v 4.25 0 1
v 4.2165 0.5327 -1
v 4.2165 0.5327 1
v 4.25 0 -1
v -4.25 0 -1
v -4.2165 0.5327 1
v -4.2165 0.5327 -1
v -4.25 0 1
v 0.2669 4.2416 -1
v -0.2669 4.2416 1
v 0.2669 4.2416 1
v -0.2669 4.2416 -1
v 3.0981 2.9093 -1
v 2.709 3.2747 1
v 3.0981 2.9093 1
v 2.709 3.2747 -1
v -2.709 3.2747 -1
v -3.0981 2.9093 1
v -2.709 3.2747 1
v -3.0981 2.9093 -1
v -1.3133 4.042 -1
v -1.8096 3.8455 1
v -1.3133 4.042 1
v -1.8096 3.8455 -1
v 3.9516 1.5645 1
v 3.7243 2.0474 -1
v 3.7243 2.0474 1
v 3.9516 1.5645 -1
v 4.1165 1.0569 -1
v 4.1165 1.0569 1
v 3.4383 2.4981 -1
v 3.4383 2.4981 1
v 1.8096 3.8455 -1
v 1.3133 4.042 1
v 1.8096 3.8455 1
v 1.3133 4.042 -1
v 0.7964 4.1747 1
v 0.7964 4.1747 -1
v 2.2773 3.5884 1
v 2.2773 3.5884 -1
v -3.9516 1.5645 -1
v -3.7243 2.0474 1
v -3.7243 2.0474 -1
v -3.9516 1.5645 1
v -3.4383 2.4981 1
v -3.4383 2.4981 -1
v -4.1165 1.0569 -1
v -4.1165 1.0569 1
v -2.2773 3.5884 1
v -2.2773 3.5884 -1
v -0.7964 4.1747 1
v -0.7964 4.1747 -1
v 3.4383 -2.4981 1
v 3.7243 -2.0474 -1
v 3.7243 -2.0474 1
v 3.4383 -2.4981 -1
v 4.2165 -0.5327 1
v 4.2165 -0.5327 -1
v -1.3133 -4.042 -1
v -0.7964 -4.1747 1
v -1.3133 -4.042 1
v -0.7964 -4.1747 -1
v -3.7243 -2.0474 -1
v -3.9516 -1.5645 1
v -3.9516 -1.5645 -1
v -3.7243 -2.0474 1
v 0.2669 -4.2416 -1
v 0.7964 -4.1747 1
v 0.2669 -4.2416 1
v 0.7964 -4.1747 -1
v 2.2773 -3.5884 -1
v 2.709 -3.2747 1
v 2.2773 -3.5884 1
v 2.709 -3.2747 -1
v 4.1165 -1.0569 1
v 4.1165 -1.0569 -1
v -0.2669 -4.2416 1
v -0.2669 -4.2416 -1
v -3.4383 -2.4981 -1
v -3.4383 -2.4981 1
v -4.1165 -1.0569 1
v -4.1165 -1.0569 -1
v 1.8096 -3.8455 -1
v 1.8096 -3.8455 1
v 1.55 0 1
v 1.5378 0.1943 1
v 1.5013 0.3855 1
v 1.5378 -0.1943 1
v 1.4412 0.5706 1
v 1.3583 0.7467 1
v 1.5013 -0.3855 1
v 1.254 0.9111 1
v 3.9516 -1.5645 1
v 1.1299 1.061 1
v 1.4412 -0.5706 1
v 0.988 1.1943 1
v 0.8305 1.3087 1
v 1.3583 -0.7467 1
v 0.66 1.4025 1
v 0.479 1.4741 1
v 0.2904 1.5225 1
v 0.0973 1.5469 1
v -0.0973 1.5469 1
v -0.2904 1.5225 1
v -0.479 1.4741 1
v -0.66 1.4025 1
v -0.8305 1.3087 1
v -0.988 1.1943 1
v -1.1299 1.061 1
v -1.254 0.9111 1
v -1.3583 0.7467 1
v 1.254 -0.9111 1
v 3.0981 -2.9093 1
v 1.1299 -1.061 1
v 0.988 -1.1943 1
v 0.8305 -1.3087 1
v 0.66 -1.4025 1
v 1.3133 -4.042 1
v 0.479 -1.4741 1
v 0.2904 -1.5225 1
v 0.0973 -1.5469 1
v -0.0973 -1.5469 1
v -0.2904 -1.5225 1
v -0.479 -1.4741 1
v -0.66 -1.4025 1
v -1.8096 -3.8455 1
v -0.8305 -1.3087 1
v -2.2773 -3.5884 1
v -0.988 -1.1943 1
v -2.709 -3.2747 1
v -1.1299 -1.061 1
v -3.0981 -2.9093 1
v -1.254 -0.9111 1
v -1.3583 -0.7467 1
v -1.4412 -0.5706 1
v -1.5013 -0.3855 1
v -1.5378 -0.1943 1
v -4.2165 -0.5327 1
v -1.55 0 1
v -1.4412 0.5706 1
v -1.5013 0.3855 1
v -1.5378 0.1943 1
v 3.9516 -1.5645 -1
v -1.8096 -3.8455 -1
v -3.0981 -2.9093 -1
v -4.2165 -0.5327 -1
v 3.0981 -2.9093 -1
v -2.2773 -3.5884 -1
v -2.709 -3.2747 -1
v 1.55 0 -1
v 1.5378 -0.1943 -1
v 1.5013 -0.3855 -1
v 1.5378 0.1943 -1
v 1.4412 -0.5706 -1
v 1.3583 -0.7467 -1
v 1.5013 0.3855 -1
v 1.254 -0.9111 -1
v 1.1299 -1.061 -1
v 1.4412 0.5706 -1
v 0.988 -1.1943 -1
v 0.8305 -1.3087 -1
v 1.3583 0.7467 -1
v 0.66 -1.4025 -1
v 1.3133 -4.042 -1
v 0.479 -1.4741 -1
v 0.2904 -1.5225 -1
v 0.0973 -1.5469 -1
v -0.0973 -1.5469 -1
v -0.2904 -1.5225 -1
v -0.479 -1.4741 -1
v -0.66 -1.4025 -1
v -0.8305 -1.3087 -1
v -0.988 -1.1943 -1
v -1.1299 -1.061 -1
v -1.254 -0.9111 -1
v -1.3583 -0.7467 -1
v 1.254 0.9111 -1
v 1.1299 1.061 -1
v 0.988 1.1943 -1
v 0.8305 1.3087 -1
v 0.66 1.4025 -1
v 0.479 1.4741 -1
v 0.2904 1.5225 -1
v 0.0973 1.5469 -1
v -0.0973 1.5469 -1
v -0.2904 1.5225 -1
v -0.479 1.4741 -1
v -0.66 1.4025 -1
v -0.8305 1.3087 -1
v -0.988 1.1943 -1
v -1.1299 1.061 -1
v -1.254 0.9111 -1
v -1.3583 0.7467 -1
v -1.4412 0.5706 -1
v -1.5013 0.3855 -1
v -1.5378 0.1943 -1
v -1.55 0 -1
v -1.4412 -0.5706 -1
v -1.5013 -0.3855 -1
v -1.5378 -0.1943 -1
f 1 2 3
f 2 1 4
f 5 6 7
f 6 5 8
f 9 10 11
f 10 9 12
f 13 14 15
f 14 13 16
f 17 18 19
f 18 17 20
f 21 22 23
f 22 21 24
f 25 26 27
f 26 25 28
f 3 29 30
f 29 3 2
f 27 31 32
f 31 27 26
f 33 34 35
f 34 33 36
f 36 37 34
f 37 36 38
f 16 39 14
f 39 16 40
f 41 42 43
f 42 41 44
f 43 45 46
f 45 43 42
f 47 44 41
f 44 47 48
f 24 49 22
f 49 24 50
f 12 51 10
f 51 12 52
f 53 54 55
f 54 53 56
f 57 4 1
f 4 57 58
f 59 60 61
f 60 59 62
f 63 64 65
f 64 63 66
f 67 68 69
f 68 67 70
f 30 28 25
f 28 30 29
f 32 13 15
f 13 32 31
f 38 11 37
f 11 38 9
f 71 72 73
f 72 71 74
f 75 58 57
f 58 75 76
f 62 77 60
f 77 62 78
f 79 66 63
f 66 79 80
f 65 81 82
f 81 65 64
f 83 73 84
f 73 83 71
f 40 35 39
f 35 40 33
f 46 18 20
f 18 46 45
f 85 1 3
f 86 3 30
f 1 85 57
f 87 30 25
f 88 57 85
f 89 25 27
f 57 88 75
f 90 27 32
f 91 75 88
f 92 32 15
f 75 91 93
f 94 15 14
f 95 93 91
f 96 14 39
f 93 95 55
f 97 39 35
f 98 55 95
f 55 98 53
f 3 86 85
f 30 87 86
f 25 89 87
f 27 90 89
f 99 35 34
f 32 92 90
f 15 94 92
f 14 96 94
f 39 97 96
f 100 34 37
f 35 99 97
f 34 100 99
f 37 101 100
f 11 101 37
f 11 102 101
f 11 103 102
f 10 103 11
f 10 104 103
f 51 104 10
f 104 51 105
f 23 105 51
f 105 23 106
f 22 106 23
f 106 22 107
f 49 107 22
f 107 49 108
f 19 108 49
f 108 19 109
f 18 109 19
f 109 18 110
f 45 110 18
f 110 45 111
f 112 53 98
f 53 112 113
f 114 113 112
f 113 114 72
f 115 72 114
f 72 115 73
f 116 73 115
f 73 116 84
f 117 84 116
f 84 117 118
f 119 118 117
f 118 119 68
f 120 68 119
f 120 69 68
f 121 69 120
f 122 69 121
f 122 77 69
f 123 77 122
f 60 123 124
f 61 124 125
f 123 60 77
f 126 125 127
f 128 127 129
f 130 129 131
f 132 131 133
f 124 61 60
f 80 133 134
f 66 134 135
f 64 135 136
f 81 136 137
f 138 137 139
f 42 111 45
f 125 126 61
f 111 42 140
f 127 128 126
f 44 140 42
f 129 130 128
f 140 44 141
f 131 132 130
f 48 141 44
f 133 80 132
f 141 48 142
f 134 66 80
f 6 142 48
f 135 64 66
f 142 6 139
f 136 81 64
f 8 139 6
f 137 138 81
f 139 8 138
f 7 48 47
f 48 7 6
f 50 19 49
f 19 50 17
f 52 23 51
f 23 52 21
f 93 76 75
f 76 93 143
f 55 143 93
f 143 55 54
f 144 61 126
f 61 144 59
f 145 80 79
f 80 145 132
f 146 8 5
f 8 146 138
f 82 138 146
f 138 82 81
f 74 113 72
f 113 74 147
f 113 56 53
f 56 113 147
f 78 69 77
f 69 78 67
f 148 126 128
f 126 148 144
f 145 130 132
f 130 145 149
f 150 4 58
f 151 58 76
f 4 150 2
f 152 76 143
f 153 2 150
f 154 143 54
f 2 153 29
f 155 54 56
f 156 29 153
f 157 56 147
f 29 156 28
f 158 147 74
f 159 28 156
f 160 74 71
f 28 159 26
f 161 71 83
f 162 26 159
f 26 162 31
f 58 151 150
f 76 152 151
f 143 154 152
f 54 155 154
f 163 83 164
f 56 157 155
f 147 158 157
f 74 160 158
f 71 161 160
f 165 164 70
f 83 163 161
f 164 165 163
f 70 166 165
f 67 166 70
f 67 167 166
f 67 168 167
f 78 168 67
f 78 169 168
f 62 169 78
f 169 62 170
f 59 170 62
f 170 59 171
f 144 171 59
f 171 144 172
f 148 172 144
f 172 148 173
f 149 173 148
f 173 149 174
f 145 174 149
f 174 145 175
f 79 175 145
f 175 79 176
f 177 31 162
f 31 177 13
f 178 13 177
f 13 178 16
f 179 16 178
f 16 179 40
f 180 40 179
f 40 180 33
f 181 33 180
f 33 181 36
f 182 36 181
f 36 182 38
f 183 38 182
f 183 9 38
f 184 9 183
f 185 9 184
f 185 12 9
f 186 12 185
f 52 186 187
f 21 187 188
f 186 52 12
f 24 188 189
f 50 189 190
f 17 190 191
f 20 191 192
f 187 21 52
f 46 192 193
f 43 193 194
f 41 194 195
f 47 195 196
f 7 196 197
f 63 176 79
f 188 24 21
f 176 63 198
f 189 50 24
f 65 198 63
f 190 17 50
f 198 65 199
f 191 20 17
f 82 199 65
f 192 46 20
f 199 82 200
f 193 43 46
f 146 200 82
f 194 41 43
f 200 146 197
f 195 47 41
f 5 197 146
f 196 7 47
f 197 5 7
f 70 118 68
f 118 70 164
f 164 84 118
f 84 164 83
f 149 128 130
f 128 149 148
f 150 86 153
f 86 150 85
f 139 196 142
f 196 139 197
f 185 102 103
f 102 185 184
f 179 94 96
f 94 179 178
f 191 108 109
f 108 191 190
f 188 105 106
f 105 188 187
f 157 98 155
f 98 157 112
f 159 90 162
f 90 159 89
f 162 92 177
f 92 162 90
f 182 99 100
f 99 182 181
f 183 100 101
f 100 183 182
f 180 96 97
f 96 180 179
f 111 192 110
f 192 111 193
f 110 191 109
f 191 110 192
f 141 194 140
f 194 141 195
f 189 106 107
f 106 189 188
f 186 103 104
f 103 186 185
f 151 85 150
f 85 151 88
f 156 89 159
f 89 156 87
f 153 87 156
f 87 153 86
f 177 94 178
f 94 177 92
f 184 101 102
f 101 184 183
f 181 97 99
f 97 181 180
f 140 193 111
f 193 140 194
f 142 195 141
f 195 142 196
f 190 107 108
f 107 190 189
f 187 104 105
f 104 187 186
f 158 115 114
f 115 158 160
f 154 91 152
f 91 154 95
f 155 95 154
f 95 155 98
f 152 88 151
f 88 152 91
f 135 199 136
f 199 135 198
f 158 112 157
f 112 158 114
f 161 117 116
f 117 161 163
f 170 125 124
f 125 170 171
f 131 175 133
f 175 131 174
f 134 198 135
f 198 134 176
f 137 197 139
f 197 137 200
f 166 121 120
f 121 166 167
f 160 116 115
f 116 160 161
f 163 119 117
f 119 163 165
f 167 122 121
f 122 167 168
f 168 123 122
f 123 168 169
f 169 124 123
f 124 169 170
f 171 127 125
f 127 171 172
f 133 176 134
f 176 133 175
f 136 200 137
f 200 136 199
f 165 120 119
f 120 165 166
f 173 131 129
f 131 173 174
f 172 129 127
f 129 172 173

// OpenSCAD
$fn = 50;


difference() {
	union() {
		translate(v = [0, 0, -1.0000000000]) {
			cylinder(h = 2, r = 4.2500000000);
		}
	}
	union() {
		translate(v = [0, 0, -100.0000000000]) {
			cylinder(h = 200, r = 1.5500000000);
		}
	}
}
